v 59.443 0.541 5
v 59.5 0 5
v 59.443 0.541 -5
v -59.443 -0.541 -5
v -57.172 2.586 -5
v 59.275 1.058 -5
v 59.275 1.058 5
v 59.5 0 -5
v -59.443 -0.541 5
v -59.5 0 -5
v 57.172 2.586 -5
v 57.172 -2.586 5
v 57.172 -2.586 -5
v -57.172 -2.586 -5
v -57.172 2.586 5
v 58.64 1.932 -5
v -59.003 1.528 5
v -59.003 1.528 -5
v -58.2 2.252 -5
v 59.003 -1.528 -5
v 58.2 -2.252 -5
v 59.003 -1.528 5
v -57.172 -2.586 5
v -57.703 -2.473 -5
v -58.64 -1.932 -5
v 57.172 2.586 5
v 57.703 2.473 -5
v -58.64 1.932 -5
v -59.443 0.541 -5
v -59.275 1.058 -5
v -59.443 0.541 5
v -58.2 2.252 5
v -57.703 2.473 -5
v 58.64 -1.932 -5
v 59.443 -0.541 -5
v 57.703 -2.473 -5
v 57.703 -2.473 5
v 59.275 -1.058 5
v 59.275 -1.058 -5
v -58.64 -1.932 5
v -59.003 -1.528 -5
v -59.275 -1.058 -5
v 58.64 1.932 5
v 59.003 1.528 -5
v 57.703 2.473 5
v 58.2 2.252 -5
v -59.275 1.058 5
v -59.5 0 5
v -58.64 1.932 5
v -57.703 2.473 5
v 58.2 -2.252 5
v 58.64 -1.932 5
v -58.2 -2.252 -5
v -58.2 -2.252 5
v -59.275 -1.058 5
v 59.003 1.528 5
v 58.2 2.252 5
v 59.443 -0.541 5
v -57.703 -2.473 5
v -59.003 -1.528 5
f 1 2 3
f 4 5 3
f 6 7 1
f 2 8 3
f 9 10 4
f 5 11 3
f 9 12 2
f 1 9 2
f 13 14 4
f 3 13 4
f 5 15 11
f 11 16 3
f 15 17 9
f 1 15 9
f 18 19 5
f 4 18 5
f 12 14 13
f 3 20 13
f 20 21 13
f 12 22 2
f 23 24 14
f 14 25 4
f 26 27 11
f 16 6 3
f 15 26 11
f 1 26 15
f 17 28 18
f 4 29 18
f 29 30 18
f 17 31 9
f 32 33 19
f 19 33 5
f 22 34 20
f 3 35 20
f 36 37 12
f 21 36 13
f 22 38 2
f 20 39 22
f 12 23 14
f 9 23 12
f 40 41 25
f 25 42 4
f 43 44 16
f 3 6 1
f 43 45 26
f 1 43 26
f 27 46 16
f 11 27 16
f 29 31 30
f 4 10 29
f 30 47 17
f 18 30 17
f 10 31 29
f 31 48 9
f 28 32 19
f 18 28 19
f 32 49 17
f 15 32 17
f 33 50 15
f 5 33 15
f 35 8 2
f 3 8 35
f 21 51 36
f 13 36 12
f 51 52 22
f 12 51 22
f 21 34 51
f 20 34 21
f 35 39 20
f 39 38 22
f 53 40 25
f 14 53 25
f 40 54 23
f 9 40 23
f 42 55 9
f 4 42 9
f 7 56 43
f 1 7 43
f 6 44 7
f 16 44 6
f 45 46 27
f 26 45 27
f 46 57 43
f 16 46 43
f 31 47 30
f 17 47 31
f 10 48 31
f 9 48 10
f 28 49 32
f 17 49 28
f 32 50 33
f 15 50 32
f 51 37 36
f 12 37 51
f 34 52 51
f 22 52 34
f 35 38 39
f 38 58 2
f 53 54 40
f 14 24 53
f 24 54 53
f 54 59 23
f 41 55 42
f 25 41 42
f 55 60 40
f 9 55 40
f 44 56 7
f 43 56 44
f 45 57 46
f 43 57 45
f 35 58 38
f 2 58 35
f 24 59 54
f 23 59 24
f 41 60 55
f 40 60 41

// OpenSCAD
// file: ../../scadLib/library.scad
////////////////////////////////////////////////////////////////////////////////////////////////////
module plate4Point(x,y,z,d){
	hull(){
		color("green") translate([(x/2)-(d/2) ,(y/2) -(d/2),0]) cylinder(h=z, d=d, center=true);
		color("blue")  translate([(x/2)-(d/2) ,-(y/2)+(d/2),0]) cylinder(h=z, d=d, center=true);
		color("red")   translate([-(x/2)+(d/2),(y/2) -(d/2),0]) cylinder(h=z, d=d, center=true);
		color("grey")  translate([-(x/2)+(d/2),-(y/2)+(d/2),0]) cylinder(h=z, d=d, center=true);
	}
}
////////////////////////////////////////////////////////////////////////////////////////////////////
module plate2Point(x,z,d){
	hull(){
		color("green") translate([(x/2) -(d/2),0 ,0]) cylinder(h=z, d=d, center=true);
		color("blue")  translate([-(x/2)+(d/2),0 ,0]) cylinder(h=z, d=d, center=true);
	}
}
////////////////////////////////////////////////////////////////////////////////////////////////////
module triagleSphere(iX, iY, iZ, iD){
	
	halfD = iD/2;
	hull(){
		color("red")		translate([-halfD   , (iY/2)-halfD, halfD]) sphere(d=iD);	
		color("grey")		translate([-iX+halfD, (iY/2)-halfD, halfD]) sphere(d=iD);
		color("green")	translate([-halfD   , (iY/2)-halfD, iZ-halfD]) sphere(d=iD);

		color("red")		translate([-halfD   , -(iY/2)+halfD, halfD]) sphere(d=iD);
		color("grey")		translate([-iX+halfD, -(iY/2)+halfD, halfD]) sphere(d=iD);
		color("green")	translate([-halfD   , -(iY/2)+halfD, iZ-halfD]) sphere(d=iD);
	}
}
////////////////////////////////////////////////////////////////////////////////////////////////////
module cubeSphere(iX, iYm, iZ, iD){

	edgeDiamitor = iD;
	
	hull(){
		for(a=[[1,1,1],[-1,1,1],[1,-1,1],[-1,-1,1],[1,1,-1],[-1,1,-1],[1,-1,-1],[-1,-1,-1]]){
			translate([
				a[0]*((iX/2) -(edgeDiamitor/2)), 
				a[1]*((iYm/2)-(edgeDiamitor/2)), 
				a[2]*((iZ/2) -(edgeDiamitor/2))]) sphere(d=edgeDiamitor);
		}
	}
} 
////////////////////////////////////////////////////////////////////////////////////////////////////
module mText(l, letter_size = 10, letter_height = 4) {
// Use linear_extrude() to make the letters 3D objects as they
// are only 2D shapes when only using text()
	font = "Bitstream Vera Sans:style=Bold" ;
	linear_extrude(height = letter_height) {
		text(l, size = letter_size, font = font, halign = "center", valign = "center", $fn = 16);
	}
}
module roundedTrapezoid(x1=1, y1=1,x2=1, y2=1, z1=1, d1=6){
  hull(){
  // top Right
    translate([-x1,y1,0])
      cylinder(h=z1,d=d1,center=true);
  // Top Left
    translate([-x1,-y1,0])
      cylinder(h=z1,d=d1,center=true);
  // Bottom Right
    translate([-x2,y2,0])
      cylinder(h=z1,d=d1,center=true);
  // Bottom Left
    translate([-x2,-y2,0])
      cylinder(h=z1,d=d1,center=true);
  }
}
// main file
$fn=30;

use <../../scadLib/library.scad>;


//round();

bar();


////////////////////////////////////////////////////////////////////////////////////////////////////
module round(){
	difference(){
		cylinder(h=10,r=12,center=true);
		cylinder(h=20,d=2,center=true);
		translate([-20,0,0]) plate2Point(30,11,5);
	}
	
 translate([24,0,0]) plate2Point(30,10,5);
}
////////////////////////////////////////////////////////////////////////////////////////////////////
module bar(){
	plate2Point(119,10,5.2);
}
////////////////////////////////////////////////////////////////////////////////////////////////////
module bb(){
}
////////////////////////////////////////////////////////////////////////////////////////////////////
module cc(){
	
}
